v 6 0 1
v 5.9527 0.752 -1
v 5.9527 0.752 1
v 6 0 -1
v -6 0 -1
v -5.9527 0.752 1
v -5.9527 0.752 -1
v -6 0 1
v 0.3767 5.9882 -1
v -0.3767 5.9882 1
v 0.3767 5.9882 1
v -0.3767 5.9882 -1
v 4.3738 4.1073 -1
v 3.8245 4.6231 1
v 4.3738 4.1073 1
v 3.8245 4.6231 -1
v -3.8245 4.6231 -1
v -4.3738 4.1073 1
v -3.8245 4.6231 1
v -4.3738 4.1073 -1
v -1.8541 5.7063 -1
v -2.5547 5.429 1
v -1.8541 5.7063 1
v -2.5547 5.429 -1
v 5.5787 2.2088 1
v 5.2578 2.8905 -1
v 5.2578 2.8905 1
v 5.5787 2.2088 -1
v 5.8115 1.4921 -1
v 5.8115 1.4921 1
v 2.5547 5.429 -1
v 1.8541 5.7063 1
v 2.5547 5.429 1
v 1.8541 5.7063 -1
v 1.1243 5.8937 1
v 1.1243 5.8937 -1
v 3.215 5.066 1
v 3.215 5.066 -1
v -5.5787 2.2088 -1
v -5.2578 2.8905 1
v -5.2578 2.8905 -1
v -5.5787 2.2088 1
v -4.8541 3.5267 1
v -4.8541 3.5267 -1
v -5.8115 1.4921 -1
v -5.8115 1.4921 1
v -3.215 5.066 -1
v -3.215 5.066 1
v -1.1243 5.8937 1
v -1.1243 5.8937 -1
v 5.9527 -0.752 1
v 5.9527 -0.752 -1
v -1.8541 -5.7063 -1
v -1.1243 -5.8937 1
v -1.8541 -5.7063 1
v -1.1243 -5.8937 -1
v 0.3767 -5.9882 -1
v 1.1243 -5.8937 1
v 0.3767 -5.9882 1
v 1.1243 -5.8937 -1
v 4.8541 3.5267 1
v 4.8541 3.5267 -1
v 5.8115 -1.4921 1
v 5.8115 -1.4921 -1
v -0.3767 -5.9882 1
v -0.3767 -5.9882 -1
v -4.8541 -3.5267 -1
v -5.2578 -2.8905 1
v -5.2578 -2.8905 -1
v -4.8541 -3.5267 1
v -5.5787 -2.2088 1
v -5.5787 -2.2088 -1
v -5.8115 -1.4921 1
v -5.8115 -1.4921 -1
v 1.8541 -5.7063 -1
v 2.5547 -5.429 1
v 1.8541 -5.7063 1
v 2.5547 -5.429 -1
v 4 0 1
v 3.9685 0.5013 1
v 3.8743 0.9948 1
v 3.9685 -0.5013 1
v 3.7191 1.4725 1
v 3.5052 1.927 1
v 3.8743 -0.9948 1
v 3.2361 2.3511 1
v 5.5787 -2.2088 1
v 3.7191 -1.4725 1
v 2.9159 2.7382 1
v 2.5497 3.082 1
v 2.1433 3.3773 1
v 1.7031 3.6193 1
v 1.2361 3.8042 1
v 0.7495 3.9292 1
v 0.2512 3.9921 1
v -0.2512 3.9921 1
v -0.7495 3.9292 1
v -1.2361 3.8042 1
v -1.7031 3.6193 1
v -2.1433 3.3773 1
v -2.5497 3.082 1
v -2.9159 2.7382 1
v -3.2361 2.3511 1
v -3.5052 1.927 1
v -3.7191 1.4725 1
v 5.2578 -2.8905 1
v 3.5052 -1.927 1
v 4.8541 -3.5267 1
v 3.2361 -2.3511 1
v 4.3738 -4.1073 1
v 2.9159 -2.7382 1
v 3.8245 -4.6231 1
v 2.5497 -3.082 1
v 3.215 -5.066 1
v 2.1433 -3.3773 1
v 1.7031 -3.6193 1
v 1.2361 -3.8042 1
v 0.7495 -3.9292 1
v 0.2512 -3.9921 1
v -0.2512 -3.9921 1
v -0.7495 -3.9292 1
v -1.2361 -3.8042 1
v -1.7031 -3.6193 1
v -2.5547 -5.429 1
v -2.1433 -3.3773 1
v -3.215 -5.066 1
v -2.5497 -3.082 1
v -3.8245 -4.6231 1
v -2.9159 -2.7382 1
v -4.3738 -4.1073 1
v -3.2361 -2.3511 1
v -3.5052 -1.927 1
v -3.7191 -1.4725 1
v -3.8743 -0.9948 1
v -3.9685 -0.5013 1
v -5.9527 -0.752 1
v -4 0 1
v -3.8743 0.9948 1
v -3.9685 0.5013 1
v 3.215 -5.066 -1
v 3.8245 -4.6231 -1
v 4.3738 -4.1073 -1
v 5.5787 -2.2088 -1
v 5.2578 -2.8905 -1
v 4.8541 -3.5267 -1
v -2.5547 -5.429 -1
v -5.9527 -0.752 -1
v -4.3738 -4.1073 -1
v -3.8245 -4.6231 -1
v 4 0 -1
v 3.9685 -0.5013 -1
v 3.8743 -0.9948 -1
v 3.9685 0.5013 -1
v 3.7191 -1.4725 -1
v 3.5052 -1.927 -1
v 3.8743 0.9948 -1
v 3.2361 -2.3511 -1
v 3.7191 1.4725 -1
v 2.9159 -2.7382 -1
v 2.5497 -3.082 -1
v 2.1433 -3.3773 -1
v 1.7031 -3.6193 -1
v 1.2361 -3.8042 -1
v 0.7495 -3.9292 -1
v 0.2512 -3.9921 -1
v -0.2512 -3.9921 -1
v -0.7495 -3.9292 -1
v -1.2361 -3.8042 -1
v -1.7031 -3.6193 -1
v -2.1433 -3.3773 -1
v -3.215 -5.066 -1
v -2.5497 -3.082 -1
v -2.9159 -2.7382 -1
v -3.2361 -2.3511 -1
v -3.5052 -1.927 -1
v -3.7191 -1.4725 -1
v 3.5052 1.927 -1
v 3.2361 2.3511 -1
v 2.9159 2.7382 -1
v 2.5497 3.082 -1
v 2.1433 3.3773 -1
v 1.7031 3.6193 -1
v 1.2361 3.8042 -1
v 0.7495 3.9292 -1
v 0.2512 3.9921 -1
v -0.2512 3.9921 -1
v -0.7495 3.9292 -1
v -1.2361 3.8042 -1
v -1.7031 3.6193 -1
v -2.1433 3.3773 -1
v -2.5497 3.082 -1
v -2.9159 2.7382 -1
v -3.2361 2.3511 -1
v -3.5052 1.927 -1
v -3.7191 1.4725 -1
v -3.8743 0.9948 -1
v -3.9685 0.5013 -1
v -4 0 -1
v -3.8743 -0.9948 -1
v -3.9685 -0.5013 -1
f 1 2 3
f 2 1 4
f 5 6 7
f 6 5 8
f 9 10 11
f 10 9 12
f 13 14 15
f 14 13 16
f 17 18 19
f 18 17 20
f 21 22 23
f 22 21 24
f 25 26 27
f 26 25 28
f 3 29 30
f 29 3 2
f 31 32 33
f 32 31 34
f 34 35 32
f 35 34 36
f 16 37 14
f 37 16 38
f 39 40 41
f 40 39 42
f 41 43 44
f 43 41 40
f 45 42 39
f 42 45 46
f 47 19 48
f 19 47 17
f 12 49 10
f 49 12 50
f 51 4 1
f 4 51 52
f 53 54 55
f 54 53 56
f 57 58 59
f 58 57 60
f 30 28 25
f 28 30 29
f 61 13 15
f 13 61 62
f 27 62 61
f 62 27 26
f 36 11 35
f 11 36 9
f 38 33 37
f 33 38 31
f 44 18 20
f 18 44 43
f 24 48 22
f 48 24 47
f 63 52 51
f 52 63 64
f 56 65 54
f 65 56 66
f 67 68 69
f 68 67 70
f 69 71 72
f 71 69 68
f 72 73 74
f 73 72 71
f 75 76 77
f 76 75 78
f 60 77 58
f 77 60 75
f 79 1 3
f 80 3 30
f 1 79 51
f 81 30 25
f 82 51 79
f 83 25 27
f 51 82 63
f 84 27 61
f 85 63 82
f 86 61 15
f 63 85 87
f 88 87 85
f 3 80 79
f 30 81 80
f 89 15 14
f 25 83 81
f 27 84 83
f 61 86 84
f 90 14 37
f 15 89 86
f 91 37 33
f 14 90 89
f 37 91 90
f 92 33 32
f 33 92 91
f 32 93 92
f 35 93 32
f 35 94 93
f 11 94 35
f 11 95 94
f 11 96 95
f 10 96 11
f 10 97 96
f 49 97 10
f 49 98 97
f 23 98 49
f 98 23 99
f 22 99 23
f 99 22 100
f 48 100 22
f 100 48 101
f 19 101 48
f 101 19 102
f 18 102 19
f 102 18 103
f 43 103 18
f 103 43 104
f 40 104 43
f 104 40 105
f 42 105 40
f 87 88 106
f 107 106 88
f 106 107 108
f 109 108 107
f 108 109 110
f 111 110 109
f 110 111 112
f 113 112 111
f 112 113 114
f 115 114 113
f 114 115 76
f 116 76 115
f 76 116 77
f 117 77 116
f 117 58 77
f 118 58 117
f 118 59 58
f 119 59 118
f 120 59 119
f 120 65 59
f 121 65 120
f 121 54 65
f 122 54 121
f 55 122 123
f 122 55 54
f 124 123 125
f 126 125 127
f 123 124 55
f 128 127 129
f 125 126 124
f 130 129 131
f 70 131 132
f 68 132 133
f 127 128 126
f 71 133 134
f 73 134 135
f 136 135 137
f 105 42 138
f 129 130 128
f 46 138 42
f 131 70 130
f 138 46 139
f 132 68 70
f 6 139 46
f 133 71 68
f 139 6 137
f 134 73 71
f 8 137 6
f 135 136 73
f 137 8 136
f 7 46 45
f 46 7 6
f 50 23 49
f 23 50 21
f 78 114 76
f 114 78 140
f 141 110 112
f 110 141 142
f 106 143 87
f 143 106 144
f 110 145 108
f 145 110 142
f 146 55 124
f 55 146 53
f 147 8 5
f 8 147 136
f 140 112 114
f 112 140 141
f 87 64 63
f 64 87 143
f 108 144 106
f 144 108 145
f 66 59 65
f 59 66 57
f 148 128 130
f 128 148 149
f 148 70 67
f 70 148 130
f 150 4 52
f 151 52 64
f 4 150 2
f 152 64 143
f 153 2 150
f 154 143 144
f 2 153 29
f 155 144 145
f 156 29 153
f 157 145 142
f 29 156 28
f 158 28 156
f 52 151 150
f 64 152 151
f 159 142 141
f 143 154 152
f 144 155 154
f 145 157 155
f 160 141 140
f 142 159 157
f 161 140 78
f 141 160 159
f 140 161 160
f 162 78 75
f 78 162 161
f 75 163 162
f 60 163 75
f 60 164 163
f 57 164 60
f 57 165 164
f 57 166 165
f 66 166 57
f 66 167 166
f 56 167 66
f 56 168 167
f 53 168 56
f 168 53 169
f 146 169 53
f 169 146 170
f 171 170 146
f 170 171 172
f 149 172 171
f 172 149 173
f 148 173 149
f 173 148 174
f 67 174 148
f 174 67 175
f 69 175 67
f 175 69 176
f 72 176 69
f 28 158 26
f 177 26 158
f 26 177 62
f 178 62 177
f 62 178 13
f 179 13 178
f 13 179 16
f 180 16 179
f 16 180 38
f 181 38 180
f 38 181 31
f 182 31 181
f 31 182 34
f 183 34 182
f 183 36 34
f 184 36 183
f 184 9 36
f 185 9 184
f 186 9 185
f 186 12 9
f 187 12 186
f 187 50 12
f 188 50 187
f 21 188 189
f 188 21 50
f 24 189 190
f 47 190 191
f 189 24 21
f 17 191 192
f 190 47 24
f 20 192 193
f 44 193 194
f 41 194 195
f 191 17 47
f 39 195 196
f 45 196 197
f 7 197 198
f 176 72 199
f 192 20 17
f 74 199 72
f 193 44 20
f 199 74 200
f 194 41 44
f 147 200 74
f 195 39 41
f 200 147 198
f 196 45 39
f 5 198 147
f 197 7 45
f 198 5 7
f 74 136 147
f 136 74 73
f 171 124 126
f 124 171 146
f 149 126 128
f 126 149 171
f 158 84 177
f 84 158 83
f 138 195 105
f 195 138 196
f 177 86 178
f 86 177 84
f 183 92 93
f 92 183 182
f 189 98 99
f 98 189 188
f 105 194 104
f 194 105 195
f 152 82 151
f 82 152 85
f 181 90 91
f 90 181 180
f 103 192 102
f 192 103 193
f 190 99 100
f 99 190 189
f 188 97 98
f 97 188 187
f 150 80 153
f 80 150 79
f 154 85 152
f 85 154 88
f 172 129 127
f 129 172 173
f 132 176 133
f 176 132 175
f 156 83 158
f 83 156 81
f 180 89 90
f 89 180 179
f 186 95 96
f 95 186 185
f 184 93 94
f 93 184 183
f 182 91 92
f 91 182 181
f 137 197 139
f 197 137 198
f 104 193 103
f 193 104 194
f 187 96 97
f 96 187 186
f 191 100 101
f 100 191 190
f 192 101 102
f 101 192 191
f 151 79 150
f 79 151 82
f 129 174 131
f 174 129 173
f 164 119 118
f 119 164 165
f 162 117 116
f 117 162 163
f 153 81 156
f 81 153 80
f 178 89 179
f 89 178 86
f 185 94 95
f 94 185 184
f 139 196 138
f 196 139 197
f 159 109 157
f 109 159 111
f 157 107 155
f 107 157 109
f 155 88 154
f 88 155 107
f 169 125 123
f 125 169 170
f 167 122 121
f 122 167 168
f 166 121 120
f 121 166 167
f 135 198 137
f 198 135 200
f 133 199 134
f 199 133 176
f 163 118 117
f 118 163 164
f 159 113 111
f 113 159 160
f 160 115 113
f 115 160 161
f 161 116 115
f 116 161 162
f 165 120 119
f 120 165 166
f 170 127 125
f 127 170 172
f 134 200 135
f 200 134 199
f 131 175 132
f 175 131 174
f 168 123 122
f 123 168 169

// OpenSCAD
$fn = 50;


difference() {
	union() {
		translate(v = [0, 0, -1.0000000000]) {
			cylinder(h = 2, r = 6.0000000000);
		}
	}
	union() {
		translate(v = [0, 0, -100.0000000000]) {
			cylinder(h = 200, r = 4.0000000000);
		}
	}
}
